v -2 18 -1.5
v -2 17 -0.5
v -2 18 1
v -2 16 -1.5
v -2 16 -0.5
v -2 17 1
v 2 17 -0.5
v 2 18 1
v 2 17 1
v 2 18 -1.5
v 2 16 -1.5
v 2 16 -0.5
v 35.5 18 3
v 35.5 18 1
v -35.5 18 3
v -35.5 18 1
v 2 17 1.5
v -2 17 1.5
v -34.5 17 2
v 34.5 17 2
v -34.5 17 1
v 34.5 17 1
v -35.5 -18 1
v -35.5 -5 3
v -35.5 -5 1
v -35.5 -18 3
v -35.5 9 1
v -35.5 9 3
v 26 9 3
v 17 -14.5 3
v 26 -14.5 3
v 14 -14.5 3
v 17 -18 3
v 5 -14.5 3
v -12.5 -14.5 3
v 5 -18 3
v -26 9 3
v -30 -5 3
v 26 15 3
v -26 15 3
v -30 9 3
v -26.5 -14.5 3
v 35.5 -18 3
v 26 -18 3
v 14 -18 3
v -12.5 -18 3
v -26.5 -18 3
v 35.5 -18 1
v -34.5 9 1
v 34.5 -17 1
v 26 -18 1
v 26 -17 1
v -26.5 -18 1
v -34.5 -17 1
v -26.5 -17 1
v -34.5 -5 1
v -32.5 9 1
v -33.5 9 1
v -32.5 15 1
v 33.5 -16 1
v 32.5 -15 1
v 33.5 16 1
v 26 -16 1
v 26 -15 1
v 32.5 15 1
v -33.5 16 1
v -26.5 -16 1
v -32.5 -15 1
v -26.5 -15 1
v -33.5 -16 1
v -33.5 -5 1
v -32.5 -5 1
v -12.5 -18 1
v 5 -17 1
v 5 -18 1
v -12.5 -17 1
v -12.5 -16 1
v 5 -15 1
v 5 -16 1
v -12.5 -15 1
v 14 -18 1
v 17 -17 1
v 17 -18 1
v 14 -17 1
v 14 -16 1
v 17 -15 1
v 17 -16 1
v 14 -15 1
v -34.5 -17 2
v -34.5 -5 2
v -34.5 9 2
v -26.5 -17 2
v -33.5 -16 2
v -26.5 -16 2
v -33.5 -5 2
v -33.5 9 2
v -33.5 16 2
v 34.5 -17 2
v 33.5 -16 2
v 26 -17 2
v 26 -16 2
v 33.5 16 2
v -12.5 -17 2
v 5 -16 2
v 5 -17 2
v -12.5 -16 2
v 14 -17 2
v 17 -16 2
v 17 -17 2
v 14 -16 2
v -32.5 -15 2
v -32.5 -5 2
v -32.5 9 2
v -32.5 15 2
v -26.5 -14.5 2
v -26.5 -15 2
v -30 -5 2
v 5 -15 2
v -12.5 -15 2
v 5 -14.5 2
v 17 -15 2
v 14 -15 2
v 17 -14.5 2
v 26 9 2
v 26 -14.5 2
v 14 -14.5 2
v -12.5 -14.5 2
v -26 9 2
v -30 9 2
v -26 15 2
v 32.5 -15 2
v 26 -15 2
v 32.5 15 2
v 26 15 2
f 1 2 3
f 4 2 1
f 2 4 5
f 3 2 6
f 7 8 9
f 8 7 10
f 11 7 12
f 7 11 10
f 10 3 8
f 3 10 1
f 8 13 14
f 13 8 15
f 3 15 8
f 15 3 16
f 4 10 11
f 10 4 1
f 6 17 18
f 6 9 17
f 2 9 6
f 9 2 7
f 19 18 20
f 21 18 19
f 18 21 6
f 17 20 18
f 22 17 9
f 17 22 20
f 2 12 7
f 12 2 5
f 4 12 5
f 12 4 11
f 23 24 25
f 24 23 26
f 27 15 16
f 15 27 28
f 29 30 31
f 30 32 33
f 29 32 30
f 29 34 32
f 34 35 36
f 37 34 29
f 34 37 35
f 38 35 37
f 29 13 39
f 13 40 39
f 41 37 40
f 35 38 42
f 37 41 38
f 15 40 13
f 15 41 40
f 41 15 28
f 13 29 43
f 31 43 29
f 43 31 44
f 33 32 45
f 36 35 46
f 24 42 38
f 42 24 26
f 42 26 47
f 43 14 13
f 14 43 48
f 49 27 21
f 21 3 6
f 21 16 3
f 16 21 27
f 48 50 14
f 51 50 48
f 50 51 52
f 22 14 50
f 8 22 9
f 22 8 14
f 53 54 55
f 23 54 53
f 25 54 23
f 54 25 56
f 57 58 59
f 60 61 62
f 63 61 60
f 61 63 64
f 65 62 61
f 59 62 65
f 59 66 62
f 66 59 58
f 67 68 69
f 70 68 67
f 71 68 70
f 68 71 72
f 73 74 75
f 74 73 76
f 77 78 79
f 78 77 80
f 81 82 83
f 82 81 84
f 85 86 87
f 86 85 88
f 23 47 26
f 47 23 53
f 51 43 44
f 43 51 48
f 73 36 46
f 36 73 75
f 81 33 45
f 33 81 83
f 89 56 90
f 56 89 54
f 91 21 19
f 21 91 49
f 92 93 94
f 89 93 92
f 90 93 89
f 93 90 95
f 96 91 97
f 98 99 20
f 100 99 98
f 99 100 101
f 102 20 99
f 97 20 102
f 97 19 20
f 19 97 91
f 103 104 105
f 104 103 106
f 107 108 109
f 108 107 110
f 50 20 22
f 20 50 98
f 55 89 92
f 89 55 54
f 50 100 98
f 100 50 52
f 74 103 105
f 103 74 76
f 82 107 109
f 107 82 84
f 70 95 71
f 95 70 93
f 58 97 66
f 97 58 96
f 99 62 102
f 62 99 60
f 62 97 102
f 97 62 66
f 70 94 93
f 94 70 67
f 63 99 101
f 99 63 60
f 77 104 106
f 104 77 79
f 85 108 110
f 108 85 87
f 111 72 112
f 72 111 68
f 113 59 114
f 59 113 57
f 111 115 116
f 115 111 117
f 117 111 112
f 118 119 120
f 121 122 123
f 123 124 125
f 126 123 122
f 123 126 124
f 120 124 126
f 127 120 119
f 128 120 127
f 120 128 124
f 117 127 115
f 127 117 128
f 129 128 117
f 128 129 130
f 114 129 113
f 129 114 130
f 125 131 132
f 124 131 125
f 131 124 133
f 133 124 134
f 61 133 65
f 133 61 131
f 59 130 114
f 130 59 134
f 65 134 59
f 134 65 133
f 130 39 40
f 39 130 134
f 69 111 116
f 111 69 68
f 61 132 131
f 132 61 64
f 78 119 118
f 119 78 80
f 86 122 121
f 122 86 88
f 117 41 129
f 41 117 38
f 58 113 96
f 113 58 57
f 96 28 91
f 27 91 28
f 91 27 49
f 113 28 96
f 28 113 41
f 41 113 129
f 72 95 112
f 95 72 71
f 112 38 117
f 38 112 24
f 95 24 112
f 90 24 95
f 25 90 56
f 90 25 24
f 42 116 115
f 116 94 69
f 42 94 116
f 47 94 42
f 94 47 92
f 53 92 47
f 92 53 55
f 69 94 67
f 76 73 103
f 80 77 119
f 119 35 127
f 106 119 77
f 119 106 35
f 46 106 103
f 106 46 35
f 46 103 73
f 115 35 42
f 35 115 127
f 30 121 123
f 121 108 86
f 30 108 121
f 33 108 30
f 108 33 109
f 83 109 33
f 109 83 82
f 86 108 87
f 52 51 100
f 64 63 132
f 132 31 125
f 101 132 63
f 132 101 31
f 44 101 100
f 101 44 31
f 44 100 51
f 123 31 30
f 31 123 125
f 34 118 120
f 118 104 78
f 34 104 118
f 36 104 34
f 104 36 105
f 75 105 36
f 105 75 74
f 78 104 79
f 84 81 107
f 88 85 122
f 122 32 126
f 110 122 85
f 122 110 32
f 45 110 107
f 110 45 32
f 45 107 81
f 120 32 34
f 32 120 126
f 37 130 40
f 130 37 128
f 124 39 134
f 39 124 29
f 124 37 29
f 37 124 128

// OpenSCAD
// file: atoi.scad
function atoi(a)=
(a=="!")?33:
(a=="\"")?34:
(a=="#")?35:
(a=="$")?36:
(a=="%")?37:
(a=="&")?38:
(a=="'")?39:
(a=="(")?40:
(a==")")?41:
(a=="*")?42:
(a=="+")?43:
(a==",")?44:
(a=="-")?45:
(a==".")?46:
(a=="/")?47:
(a=="0")?48:
(a=="1")?49:
(a=="2")?50:
(a=="3")?51:
(a=="4")?52:
(a=="5")?53:
(a=="6")?54:
(a=="7")?55:
(a=="8")?56:
(a=="9")?57:
(a==":")?58:
(a==";")?59:
(a=="<")?60:
(a=="=")?61:
(a==">")?62:
(a=="?")?63:
(a=="@")?64:
(a=="A")?65:
(a=="B")?66:
(a=="C")?67:
(a=="D")?68:
(a=="E")?69:
(a=="F")?70:
(a=="G")?71:
(a=="H")?72:
(a=="I")?73:
(a=="J")?74:
(a=="K")?75:
(a=="L")?76:
(a=="M")?77:
(a=="N")?78:
(a=="O")?79:
(a=="P")?80:
(a=="Q")?81:
(a=="R")?82:
(a=="S")?83:
(a=="T")?84:
(a=="U")?85:
(a=="V")?86:
(a=="W")?87:
(a=="X")?88:
(a=="Y")?89:
(a=="Z")?90:
(a=="[")?91:
(a=="\\")?92:
(a=="]")?93:
(a=="^")?94:
(a=="_")?95:
(a=="`")?96:
(a=="a")?97:
(a=="b")?98:
(a=="c")?99:
(a=="d")?100:
(a=="e")?101:
(a=="f")?102:
(a=="g")?103:
(a=="h")?104:
(a=="i")?105:
(a=="j")?106:
(a=="k")?107:
(a=="l")?108:
(a=="m")?109:
(a=="n")?110:
(a=="o")?111:
(a=="p")?112:
(a=="q")?113:
(a=="r")?114:
(a=="s")?115:
(a=="t")?116:
(a=="u")?117:
(a=="v")?118:
(a=="w")?119:
(a=="x")?120:
(a=="y")?121:
(a=="z")?122:
(a=="{")?123:
(a=="|")?124:
(a=="}")?125:
(a=="~")?126:
(a=="€")?128:
(a=="‚")?130:
(a=="ƒ")?131:
(a=="„")?132:
(a=="…")?133:
(a=="†")?134:
(a=="‡")?135:
(a=="ˆ")?136:
(a=="‰")?137:
(a=="Š")?138:
(a=="‹")?139:
(a=="Œ")?140:
(a=="Ž")?142:
(a=="‘")?145:
(a=="’")?146:
(a=="“")?147:
(a=="”")?148:
(a=="•")?149:
(a=="–")?150:
(a=="—")?151:
(a=="˜")?152:
(a=="™")?153:
(a=="š")?154:
(a=="›")?155:
(a=="œ")?156:
(a=="ž")?158:
(a=="Ÿ")?159:
(a=="¡")?161:
(a=="¢")?162:
(a=="£")?163:
(a=="¤")?164:
(a=="¥")?165:
(a=="¦")?166:
(a=="§")?167:
(a=="¨")?168:
(a=="©")?169:
(a=="ª")?170:
(a=="«")?171:
(a=="¬")?172:
(a=="®")?174:
(a=="¯")?175:
(a=="°")?176:
(a=="±")?177:
(a=="²")?178:
(a=="³")?179:
(a=="´")?180:
(a=="µ")?181:
(a=="¶")?182:
(a=="·")?183:
(a=="¸")?184:
(a=="¹")?185:
(a=="º")?186:
(a=="»")?187:
(a=="¼")?188:
(a=="½")?189:
(a=="¾")?190:
(a=="¿")?191:
(a=="À")?192:
(a=="Á")?193:
(a=="Â")?194:
(a=="Ã")?195:
(a=="Ä")?196:
(a=="Å")?197:
(a=="Æ")?198:
(a=="Ç")?199:
(a=="È")?200:
(a=="É")?201:
(a=="Ê")?202:
(a=="Ë")?203:
(a=="Ì")?204:
(a=="Í")?205:
(a=="Î")?206:
(a=="Ï")?207:
(a=="Ð")?208:
(a=="Ñ")?209:
(a=="Ò")?210:
(a=="Ó")?211:
(a=="Ô")?212:
(a=="Õ")?213:
(a=="Ö")?214:
(a=="×")?215:
(a=="Ø")?216:
(a=="Ù")?217:
(a=="Ú")?218:
(a=="Û")?219:
(a=="Ü")?220:
(a=="Ý")?221:
(a=="Þ")?222:
(a=="ß")?223:
(a=="à")?224:
(a=="á")?225:
(a=="â")?226:
(a=="ã")?227:
(a=="ä")?228:
(a=="å")?229:
(a=="æ")?230:
(a=="ç")?231:
(a=="è")?232:
(a=="é")?233:
(a=="ê")?234:
(a=="ë")?235:
(a=="ì")?236:
(a=="í")?237:
(a=="î")?238:
(a=="ï")?239:
(a=="ð")?240:
(a=="ñ")?241:
(a=="ò")?242:
(a=="ó")?243:
(a=="ô")?244:
(a=="õ")?245:
(a=="ö")?246:
(a=="÷")?247:
(a=="ø")?248:
(a=="ù")?249:
(a=="ú")?250:
(a=="û")?251:
(a=="ü")?252:
(a=="ý")?253:
(a=="þ")?254:
(a=="ÿ")?255:
0;
// file: write.scad
include <atoi.scad>;
module _write(font,s,h,p,i) {
	if(i<len(s)){
		if(s[i]==" "){
			translate([dxf_dim(file = font, name = str(atoi("-"),"_width")),0,0])
				_write(font,s,h,p,i+1);
		}else{
			linear_extrude(height=h) import(font,layer=atoi(s[i]));		
			translate([p+dxf_dim(file = font, name = str(atoi(s[i]),"_width")),0,0])
				_write(font,s,h,p,i+1);
		}
	}
}
module write(s,h,p){
	_write("GaroaHackerClubeBold.dxf",s,h,1,0);
}
module write_custom(font,s,h,p){
	_write(font,s,h,p,0);
}
// main file
use<write.scad>

//translate([0,0,1])
//    cube([65,30,1], true);

translate([0,0,2]) 
{
    difference() 
    {
    union()
    {
        translate([0,0,-0.5])
            cube([67,32,1], true);
        difference()
        {
            cube([71,36,2], true);
            
            translate([0,0,-1])
                cube([69,34,2], true);
        }
    }
    
    //make the top thinner
    translate([0,0,-0.5])
        cube([65,30,1], true);
    
    //microSD card
    translate([-33.5,2,4])
        cube([7,14,10], true);
    
    //miniHDMI
    translate([-19.5,-17,4])
        cube([14,5,10], true);
    
    //1st microUSB
    translate([21.5,-17,4])
        cube([9,5,10], true);
    
    //2st microUSB
    translate([9.5,-17,4])
        cube([9,5,10], true);
        
    //40pin header
    translate([0,12,0])
        cube([52,6,10], true);
    }
}

//Hanger
translate([0,17.5,0])
{
    union()
    {
        cube([4,1,3], true);
        translate([0,-1,-1])
            cube([4,1,1], true);
    }
}
